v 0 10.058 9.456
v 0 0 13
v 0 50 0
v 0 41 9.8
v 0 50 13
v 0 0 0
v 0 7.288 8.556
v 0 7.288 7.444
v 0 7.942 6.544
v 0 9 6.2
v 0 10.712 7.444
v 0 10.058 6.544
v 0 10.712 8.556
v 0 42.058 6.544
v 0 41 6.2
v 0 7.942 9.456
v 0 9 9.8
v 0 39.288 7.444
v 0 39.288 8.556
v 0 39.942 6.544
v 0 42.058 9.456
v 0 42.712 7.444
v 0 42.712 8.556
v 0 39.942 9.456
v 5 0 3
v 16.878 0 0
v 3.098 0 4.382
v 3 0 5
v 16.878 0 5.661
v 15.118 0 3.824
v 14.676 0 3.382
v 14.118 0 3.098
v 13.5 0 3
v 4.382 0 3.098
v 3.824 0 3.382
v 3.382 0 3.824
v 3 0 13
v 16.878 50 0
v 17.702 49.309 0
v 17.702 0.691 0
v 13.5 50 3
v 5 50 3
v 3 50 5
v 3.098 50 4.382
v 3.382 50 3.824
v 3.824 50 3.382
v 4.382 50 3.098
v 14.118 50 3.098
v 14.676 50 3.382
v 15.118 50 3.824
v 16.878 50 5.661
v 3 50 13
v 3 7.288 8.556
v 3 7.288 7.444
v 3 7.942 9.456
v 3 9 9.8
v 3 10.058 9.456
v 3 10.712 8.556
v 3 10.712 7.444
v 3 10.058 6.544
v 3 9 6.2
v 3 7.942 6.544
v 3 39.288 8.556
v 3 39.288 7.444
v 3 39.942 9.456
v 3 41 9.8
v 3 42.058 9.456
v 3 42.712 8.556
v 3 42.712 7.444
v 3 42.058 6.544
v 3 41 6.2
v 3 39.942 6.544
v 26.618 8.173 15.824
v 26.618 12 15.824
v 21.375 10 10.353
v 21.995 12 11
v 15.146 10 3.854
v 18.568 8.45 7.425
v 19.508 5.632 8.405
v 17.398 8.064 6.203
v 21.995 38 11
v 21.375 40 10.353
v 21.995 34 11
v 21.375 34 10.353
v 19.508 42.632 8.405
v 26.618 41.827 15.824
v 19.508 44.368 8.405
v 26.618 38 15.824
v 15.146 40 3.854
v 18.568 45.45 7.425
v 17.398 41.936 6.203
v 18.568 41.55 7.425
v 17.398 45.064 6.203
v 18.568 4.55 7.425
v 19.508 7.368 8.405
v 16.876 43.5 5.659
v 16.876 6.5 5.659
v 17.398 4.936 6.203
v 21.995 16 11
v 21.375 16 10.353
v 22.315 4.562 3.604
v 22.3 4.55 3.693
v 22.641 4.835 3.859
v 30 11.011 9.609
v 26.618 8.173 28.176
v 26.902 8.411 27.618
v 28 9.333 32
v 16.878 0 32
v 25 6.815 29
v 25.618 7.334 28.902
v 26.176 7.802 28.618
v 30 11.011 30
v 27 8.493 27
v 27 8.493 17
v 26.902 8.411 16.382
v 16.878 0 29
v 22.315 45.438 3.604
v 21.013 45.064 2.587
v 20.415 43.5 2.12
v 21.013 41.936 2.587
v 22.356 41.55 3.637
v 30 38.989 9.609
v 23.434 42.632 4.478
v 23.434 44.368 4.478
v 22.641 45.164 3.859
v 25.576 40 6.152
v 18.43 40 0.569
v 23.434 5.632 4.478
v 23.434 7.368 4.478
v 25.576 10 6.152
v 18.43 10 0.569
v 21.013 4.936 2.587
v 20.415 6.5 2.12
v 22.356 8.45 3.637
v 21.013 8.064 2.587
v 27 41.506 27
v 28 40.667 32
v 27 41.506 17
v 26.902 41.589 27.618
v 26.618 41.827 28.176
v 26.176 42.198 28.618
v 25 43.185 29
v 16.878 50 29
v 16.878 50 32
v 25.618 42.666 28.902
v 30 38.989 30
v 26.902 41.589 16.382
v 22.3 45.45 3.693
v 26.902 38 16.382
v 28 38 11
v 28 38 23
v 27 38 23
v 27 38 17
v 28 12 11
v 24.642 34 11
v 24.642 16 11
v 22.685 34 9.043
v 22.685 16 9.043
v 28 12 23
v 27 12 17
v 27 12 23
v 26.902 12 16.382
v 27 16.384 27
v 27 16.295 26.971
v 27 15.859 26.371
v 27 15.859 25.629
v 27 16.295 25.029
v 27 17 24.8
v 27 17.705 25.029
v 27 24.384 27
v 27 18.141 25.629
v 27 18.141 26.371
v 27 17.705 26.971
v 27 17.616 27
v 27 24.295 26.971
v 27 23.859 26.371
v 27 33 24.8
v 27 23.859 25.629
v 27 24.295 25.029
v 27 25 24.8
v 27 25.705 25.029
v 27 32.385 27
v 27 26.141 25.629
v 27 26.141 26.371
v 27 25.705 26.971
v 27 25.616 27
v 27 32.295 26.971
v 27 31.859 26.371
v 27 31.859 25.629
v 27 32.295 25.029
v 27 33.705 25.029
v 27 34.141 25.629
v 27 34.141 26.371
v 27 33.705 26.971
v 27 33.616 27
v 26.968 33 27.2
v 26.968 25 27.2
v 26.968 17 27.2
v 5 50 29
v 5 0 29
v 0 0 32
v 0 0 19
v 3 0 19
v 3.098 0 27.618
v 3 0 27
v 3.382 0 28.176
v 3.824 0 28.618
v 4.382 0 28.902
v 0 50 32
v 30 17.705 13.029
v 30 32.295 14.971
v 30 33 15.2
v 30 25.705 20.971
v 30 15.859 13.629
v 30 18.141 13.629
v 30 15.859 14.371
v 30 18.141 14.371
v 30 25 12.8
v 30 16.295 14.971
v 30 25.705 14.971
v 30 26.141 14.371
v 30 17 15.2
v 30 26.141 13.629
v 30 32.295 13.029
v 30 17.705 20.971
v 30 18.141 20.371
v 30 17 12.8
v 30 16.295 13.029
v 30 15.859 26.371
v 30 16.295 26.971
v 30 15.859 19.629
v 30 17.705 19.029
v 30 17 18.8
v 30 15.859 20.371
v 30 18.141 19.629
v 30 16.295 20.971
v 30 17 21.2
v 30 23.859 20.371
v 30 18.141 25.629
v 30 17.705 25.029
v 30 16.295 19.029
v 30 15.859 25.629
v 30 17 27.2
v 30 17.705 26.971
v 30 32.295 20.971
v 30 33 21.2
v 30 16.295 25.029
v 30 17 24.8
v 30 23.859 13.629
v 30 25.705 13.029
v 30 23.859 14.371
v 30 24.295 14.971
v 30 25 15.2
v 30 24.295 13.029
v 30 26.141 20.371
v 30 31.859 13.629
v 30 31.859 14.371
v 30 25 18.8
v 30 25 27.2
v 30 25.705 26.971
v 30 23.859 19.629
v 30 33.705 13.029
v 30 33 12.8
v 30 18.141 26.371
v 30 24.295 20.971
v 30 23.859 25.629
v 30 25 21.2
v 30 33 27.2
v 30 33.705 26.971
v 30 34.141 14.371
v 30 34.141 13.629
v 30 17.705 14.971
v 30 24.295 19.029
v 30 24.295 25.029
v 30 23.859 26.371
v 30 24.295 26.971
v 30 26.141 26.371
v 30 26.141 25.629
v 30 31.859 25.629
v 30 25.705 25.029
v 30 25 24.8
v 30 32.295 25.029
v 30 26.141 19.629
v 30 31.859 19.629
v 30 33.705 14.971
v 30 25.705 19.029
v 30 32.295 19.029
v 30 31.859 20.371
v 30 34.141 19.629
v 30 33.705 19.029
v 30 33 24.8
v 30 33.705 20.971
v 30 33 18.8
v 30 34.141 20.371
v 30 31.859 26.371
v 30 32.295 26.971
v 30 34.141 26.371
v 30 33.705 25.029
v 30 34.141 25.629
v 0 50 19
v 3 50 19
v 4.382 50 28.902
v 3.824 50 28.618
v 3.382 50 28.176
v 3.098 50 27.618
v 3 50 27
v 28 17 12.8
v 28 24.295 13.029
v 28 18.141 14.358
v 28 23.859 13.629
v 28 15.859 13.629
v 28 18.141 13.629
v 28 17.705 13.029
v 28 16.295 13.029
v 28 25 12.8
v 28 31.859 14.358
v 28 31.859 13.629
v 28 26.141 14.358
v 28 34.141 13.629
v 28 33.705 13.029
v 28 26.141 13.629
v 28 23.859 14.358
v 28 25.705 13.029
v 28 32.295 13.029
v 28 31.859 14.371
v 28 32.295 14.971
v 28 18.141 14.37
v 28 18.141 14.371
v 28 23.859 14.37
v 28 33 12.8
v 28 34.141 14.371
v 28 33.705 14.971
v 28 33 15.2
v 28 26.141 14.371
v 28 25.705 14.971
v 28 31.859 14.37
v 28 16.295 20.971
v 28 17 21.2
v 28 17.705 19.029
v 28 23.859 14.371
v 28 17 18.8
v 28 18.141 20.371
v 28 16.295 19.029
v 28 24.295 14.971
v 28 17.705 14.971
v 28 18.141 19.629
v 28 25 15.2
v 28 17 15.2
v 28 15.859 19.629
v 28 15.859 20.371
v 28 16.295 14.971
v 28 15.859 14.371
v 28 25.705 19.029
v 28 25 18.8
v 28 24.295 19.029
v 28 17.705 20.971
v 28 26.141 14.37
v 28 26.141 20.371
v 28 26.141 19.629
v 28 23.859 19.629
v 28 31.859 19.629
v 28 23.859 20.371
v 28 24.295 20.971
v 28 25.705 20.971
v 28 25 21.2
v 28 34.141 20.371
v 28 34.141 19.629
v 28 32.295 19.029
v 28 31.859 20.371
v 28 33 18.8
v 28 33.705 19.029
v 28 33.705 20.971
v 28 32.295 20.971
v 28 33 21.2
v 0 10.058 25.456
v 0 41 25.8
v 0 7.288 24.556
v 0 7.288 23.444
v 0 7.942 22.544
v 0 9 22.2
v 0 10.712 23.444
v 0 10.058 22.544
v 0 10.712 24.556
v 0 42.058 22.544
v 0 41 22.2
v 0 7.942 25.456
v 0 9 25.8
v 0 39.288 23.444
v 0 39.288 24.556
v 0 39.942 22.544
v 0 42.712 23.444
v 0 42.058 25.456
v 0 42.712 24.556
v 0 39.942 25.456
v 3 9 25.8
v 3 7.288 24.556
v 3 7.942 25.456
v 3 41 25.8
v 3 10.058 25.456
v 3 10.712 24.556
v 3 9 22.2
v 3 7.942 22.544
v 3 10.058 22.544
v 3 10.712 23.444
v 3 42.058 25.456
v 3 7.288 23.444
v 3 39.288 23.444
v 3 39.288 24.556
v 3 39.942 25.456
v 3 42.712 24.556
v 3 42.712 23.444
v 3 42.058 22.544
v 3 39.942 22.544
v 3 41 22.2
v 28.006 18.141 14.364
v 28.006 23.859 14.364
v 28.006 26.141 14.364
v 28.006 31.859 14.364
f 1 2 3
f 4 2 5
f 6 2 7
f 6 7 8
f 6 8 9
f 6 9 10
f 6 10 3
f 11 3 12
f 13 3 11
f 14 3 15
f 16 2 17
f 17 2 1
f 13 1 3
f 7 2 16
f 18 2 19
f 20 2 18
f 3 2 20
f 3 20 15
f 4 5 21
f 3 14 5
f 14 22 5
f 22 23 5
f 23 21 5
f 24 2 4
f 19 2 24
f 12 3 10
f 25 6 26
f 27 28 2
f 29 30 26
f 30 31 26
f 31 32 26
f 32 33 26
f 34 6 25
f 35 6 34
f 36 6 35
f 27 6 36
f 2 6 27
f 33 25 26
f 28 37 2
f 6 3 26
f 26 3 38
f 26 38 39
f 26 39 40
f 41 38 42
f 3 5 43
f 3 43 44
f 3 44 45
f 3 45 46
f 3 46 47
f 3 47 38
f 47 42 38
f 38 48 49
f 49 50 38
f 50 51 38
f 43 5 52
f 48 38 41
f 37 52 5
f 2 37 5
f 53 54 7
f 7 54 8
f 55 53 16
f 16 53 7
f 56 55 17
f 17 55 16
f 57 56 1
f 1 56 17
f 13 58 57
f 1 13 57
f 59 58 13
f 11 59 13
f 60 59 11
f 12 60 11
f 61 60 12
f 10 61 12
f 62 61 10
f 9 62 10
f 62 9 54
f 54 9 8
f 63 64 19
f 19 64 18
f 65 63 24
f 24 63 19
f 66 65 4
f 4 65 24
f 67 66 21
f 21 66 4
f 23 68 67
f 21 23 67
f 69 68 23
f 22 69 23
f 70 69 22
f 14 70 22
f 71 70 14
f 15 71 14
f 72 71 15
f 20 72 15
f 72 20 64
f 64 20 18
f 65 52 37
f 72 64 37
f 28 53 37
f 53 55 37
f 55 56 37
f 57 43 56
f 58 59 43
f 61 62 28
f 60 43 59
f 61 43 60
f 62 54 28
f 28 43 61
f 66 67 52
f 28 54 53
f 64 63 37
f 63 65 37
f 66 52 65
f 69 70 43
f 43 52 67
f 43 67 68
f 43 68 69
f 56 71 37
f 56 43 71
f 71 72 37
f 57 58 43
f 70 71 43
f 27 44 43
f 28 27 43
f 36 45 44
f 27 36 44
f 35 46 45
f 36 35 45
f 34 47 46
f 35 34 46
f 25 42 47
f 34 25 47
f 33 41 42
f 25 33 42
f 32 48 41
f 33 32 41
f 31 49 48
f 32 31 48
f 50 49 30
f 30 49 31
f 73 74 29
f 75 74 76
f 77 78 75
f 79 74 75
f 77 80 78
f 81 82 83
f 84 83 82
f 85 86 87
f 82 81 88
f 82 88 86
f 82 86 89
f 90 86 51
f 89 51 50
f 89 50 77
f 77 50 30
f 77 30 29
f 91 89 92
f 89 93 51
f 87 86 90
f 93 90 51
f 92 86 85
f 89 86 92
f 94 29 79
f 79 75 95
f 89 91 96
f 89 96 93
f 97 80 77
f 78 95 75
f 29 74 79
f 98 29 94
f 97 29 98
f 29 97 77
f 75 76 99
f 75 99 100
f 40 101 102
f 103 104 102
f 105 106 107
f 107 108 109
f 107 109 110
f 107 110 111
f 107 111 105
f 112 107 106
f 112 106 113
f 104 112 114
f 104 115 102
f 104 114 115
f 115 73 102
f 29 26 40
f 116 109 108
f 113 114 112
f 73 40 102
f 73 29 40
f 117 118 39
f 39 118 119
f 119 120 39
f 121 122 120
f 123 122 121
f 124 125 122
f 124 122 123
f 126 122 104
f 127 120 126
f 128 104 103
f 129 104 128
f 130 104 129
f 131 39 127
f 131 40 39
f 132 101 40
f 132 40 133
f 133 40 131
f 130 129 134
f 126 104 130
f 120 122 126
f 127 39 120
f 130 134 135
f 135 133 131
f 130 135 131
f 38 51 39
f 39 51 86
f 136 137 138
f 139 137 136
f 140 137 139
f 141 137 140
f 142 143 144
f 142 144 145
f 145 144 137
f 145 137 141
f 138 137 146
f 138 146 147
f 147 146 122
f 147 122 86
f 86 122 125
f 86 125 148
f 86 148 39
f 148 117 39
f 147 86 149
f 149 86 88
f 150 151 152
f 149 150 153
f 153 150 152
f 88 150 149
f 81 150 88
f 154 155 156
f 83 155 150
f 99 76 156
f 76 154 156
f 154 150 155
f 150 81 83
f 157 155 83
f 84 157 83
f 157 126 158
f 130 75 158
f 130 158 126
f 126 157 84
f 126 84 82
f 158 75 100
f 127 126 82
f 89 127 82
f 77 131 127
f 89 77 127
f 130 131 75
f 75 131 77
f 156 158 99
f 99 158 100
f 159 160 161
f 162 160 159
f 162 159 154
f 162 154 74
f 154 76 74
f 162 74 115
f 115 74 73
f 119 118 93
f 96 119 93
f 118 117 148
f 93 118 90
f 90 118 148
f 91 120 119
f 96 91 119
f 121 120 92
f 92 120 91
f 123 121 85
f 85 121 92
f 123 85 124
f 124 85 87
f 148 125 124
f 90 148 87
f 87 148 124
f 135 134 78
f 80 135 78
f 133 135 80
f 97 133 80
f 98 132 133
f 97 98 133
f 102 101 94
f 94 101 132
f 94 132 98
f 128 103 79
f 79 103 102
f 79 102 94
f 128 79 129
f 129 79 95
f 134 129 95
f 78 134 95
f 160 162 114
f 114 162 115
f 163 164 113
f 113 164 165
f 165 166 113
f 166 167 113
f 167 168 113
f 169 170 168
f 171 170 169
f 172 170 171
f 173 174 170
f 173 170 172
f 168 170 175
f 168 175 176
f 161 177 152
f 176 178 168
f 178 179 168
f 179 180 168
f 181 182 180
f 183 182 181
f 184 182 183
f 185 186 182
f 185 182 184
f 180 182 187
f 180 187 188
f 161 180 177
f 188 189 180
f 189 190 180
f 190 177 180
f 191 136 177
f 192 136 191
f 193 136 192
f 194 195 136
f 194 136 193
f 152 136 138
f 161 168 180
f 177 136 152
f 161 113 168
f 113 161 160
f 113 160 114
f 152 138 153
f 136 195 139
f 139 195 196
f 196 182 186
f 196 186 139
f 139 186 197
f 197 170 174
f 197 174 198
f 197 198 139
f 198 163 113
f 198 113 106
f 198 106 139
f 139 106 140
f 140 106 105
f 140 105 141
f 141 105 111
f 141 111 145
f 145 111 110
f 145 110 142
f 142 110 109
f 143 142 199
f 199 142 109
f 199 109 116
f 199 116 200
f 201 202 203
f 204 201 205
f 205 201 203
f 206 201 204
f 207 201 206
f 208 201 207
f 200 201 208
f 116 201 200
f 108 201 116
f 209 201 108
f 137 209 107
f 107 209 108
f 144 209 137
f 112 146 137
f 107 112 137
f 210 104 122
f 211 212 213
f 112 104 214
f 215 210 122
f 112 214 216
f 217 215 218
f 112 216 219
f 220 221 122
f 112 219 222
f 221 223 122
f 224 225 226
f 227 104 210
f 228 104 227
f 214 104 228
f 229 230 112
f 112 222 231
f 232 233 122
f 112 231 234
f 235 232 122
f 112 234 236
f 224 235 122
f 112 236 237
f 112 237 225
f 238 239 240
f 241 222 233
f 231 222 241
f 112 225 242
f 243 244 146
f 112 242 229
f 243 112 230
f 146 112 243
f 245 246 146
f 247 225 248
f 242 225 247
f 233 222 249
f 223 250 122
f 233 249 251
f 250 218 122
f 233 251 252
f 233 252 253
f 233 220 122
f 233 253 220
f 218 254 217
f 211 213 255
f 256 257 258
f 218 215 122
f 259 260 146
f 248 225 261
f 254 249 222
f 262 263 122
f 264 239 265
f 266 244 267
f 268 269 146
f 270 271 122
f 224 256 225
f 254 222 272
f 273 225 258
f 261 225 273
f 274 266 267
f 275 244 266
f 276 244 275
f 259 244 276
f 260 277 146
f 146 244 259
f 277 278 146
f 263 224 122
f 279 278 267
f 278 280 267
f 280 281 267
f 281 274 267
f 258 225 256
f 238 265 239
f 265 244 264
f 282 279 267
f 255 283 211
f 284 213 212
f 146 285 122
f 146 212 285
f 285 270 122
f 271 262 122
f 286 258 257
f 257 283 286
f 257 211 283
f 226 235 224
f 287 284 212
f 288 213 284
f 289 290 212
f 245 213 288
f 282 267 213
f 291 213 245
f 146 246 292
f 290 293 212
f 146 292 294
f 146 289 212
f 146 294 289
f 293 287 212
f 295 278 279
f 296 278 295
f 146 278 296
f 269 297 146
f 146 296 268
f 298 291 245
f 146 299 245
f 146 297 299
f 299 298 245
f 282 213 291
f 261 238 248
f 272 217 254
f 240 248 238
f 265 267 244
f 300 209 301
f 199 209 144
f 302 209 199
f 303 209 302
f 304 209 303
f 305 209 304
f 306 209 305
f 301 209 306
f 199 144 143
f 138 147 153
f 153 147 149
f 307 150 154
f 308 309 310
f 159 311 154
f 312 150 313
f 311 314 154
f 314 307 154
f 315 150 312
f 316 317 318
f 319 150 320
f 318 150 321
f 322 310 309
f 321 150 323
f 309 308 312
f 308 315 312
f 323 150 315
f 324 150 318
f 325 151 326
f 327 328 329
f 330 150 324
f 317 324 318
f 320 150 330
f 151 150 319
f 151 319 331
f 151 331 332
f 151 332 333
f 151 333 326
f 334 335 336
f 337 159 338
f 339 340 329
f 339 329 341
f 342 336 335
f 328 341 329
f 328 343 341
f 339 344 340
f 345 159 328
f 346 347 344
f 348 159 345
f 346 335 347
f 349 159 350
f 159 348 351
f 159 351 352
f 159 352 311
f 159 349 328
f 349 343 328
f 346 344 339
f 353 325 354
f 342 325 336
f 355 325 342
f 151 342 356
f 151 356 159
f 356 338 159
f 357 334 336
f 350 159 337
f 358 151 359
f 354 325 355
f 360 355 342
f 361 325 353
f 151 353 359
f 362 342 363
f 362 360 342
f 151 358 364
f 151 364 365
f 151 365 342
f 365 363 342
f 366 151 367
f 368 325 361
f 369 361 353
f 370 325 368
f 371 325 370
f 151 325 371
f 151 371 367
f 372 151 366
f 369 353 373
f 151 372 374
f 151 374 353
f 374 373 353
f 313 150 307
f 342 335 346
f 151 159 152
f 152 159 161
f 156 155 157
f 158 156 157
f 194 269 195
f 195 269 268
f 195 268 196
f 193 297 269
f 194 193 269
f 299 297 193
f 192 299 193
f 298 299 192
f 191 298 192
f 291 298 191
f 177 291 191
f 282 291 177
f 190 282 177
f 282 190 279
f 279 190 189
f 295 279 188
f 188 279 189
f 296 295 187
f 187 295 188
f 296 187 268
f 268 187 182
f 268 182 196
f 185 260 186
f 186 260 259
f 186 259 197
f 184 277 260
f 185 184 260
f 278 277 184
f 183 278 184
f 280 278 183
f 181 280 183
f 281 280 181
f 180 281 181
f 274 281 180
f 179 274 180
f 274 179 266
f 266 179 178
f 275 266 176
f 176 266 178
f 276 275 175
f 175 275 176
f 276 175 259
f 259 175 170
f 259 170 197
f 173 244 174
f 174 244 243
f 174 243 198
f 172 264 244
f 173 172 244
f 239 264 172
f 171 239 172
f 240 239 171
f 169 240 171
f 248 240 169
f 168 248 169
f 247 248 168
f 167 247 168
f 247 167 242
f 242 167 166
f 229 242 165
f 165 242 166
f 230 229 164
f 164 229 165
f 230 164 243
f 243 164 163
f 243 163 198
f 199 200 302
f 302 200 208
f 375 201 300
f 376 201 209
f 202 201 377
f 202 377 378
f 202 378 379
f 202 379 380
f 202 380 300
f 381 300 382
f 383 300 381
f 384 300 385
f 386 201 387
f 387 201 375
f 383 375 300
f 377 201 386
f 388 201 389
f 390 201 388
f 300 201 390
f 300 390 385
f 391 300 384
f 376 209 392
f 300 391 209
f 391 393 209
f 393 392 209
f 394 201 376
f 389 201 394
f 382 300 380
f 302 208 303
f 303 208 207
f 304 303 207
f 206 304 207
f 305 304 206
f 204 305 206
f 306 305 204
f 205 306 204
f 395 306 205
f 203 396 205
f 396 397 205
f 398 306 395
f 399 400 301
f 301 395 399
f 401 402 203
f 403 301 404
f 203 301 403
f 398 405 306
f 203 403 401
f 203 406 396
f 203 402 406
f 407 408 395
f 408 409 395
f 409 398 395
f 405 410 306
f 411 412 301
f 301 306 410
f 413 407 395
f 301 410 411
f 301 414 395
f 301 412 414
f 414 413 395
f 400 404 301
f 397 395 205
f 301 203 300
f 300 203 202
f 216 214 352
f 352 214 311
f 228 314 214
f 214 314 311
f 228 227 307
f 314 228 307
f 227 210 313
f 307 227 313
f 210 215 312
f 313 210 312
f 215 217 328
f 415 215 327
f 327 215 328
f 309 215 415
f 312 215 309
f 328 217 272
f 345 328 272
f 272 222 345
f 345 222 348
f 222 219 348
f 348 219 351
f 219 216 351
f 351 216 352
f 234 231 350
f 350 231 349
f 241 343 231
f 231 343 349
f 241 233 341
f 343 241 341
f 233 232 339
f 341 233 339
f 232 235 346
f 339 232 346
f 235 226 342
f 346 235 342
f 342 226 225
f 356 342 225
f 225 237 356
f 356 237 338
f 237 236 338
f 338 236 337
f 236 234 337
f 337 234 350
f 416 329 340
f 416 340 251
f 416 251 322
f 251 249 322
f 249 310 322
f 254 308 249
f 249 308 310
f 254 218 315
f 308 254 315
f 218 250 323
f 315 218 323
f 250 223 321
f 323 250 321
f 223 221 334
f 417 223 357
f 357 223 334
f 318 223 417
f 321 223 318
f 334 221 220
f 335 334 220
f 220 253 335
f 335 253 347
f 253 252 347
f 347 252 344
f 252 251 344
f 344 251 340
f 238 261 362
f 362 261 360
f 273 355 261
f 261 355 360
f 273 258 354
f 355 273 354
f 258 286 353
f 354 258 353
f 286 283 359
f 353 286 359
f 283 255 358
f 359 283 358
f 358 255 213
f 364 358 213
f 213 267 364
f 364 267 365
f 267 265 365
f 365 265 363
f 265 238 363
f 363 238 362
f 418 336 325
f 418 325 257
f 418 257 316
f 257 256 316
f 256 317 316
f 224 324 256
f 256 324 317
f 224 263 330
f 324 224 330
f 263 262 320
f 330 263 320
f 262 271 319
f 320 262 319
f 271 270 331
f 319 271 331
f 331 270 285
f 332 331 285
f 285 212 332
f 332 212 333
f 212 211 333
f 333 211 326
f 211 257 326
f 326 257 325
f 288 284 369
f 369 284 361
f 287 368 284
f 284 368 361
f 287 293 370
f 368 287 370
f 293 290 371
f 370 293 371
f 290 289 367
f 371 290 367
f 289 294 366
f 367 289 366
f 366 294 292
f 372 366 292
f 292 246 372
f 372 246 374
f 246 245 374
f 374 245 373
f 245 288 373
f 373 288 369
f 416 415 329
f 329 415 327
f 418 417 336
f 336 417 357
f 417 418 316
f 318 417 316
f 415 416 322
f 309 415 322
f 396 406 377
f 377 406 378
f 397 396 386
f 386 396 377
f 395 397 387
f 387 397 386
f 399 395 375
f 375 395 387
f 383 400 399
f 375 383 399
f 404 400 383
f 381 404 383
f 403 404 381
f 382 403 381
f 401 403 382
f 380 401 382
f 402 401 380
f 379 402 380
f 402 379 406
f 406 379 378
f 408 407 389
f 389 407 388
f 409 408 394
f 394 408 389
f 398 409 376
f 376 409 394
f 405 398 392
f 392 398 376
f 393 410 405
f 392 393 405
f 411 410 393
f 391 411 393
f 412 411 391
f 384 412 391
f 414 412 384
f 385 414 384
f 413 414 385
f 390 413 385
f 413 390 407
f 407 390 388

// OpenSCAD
// file: raid3r/raid3r.scad
/*Pequeña biblioteca con las funciones mas comunes*/

module agujereado(X,Y,H){
	union(){
		for(j=[0:X-1])
		{
			translate([0,j*8,0])
			{
				for(i=[0:Y-1])
				{
					translate([i*6,0,-1])cylinder(r=1.2, h=H, $fn=10);
				}
			}
		}
	}
}

module dynahole(H){
	translate([-45.5/2,-10,1])union(){
		translate([3.5+6,16,0])agujereado(4,1,H);
		translate([9.5+26.5,16,0])agujereado(4,1,H);
		translate([45.5/2,10,-1])cylinder(r=11.5,h=H);	
		translate([(45.5-20)/2,6.5,-1])cube([20,36,H]);
		translate([22.5,46,0])union(){
			translate([7,0,-1])cylinder(r=1.5, h=H, $fn=10);
			translate([-7,0,-1])cylinder(r=1.5, h=H, $fn=10);
		}
	}
}

module cruz(H){
	translate([-34,-13,3])union(){
		translate([34,13,-3]) cylinder(r=4,h=H);
		translate([42,13,-3]) cylinder(r=1.5,h=H);
		translate([26,13,-3]) cylinder(r=1.5,h=H);
		translate([34,21,-3]) cylinder(r=1.5,h=H);
		translate([34,5,-3]) cylinder(r=1.5,h=H);
	}
}

module miniservo(H){
	translate([-15,-7,0])union(){
		translate([15,7,0])rotate([0,0,0])cylinder(r=8,h=H);
		translate([-1.75,7,0])union(){
			cylinder(r=1.5, h=H,$fn=20);
			translate([27.5,0,0])cylinder(r=1.5, h=H,$fn=20);
		}
	}
}

module beagleboneHoles(z){
union(){
	translate([0,0,-1])cylinder(r=2,h=z, $fn=8);
	translate([0,46.5,-1])cylinder(r=2,h=z, $fn=8);
	translate([64.5+1.5,2.5,-1])cylinder(r=2,h=z, $fn=8);
	translate([64.5+1.5,44,-1])cylinder(r=2,h=z, $fn=8);
	translate([0,0,-1])cylinder(r=3,h=3, $fn=8);
	translate([0,46.5,-1])cylinder(r=3,h=3, $fn=8);
	translate([64.5+1.5,2.5,-1])cylinder(r=3,h=3, $fn=8);
	translate([64.5+1.5,44,-1])cylinder(r=3,h=3, $fn=8);
	}
}
// main file
use <raid3r/raid3r.scad>

x=-1;
d=03.5;
l=5;
r=90;

difference(){
cube([30,50,32]);
translate([15,-1,46+x])rotate([0,45,0])cube([60,52,32]);
translate([30,-1,-30+x])rotate([0,-38,0])cube([60,52,32]);
translate([6,10,14+x])rotate([0,45,0])cube([40,30,9]);
//translate([6.5,-2,10.5+x])rotate([0,45,0])cube([10,54,19]);
translate([7.5,16,9+x])rotate([0,45,0])translate([0,0,3])cube([10,18,16]);
translate([18,12,12+x])cube([10,26,12]);
translate([6,10,14+x])rotate([0,135,0])translate([-4.5,0-d,1])cylinder(r=2,h=20);
translate([6,10,14+x])rotate([0,135,0])translate([-4.5,37-d,1])cylinder(r=2,h=20);



hull(){
	//translate([3,-1,3])cube([10,60,26]);
	translate([5,-1,27])rotate([-90,0,0])cylinder(r=2,h=60,$fn=20);
	translate([5,-1,5])rotate([-90,0,0])cylinder(r=2,h=60,$fn=20);
	translate([13.5,-1,5])rotate([-90,0,0])cylinder(r=2,h=60,$fn=20);
	translate([25,-1,17])rotate([-90,0,0])cylinder(r=2,h=60,$fn=20);
	translate([25,-1,27])rotate([-90,0,0])cylinder(r=2,h=60,$fn=20);
	//translate([17,-1,17+x])cube([10,60,12]);

	//translate([54,-1,16+x])cube([3,60,3]);
	//translate([54,-1,21+x])cube([3,60,3]);
	//translate([50,-1,25+x])cube([3,60,3]);
		

}
translate([26,17,26])rotate([0,90,0])agujereado(3,3,6);

translate([-2,-1,13])cube([10,60,6]);

translate([-1,25-16,(32+16)/2])rotate([0,90,0]){
cylinder(r=1.8,h=10,$fn=10);
translate([16,0,0])cylinder(r=1.8,h=10,$fn=10);
translate([16,32,0])cylinder(r=1.8,h=10,$fn=10);
translate([0,32,0])cylinder(r=1.8,h=10,$fn=10);
	}


//cortes inclinados
translate([0,25,0]){
rotate([0,0,40])translate([-30,-r,-1])cube(60);
mirror([0,1,0])rotate([0,0,40])translate([-30,-r,-1])cube(60);
	}

}
